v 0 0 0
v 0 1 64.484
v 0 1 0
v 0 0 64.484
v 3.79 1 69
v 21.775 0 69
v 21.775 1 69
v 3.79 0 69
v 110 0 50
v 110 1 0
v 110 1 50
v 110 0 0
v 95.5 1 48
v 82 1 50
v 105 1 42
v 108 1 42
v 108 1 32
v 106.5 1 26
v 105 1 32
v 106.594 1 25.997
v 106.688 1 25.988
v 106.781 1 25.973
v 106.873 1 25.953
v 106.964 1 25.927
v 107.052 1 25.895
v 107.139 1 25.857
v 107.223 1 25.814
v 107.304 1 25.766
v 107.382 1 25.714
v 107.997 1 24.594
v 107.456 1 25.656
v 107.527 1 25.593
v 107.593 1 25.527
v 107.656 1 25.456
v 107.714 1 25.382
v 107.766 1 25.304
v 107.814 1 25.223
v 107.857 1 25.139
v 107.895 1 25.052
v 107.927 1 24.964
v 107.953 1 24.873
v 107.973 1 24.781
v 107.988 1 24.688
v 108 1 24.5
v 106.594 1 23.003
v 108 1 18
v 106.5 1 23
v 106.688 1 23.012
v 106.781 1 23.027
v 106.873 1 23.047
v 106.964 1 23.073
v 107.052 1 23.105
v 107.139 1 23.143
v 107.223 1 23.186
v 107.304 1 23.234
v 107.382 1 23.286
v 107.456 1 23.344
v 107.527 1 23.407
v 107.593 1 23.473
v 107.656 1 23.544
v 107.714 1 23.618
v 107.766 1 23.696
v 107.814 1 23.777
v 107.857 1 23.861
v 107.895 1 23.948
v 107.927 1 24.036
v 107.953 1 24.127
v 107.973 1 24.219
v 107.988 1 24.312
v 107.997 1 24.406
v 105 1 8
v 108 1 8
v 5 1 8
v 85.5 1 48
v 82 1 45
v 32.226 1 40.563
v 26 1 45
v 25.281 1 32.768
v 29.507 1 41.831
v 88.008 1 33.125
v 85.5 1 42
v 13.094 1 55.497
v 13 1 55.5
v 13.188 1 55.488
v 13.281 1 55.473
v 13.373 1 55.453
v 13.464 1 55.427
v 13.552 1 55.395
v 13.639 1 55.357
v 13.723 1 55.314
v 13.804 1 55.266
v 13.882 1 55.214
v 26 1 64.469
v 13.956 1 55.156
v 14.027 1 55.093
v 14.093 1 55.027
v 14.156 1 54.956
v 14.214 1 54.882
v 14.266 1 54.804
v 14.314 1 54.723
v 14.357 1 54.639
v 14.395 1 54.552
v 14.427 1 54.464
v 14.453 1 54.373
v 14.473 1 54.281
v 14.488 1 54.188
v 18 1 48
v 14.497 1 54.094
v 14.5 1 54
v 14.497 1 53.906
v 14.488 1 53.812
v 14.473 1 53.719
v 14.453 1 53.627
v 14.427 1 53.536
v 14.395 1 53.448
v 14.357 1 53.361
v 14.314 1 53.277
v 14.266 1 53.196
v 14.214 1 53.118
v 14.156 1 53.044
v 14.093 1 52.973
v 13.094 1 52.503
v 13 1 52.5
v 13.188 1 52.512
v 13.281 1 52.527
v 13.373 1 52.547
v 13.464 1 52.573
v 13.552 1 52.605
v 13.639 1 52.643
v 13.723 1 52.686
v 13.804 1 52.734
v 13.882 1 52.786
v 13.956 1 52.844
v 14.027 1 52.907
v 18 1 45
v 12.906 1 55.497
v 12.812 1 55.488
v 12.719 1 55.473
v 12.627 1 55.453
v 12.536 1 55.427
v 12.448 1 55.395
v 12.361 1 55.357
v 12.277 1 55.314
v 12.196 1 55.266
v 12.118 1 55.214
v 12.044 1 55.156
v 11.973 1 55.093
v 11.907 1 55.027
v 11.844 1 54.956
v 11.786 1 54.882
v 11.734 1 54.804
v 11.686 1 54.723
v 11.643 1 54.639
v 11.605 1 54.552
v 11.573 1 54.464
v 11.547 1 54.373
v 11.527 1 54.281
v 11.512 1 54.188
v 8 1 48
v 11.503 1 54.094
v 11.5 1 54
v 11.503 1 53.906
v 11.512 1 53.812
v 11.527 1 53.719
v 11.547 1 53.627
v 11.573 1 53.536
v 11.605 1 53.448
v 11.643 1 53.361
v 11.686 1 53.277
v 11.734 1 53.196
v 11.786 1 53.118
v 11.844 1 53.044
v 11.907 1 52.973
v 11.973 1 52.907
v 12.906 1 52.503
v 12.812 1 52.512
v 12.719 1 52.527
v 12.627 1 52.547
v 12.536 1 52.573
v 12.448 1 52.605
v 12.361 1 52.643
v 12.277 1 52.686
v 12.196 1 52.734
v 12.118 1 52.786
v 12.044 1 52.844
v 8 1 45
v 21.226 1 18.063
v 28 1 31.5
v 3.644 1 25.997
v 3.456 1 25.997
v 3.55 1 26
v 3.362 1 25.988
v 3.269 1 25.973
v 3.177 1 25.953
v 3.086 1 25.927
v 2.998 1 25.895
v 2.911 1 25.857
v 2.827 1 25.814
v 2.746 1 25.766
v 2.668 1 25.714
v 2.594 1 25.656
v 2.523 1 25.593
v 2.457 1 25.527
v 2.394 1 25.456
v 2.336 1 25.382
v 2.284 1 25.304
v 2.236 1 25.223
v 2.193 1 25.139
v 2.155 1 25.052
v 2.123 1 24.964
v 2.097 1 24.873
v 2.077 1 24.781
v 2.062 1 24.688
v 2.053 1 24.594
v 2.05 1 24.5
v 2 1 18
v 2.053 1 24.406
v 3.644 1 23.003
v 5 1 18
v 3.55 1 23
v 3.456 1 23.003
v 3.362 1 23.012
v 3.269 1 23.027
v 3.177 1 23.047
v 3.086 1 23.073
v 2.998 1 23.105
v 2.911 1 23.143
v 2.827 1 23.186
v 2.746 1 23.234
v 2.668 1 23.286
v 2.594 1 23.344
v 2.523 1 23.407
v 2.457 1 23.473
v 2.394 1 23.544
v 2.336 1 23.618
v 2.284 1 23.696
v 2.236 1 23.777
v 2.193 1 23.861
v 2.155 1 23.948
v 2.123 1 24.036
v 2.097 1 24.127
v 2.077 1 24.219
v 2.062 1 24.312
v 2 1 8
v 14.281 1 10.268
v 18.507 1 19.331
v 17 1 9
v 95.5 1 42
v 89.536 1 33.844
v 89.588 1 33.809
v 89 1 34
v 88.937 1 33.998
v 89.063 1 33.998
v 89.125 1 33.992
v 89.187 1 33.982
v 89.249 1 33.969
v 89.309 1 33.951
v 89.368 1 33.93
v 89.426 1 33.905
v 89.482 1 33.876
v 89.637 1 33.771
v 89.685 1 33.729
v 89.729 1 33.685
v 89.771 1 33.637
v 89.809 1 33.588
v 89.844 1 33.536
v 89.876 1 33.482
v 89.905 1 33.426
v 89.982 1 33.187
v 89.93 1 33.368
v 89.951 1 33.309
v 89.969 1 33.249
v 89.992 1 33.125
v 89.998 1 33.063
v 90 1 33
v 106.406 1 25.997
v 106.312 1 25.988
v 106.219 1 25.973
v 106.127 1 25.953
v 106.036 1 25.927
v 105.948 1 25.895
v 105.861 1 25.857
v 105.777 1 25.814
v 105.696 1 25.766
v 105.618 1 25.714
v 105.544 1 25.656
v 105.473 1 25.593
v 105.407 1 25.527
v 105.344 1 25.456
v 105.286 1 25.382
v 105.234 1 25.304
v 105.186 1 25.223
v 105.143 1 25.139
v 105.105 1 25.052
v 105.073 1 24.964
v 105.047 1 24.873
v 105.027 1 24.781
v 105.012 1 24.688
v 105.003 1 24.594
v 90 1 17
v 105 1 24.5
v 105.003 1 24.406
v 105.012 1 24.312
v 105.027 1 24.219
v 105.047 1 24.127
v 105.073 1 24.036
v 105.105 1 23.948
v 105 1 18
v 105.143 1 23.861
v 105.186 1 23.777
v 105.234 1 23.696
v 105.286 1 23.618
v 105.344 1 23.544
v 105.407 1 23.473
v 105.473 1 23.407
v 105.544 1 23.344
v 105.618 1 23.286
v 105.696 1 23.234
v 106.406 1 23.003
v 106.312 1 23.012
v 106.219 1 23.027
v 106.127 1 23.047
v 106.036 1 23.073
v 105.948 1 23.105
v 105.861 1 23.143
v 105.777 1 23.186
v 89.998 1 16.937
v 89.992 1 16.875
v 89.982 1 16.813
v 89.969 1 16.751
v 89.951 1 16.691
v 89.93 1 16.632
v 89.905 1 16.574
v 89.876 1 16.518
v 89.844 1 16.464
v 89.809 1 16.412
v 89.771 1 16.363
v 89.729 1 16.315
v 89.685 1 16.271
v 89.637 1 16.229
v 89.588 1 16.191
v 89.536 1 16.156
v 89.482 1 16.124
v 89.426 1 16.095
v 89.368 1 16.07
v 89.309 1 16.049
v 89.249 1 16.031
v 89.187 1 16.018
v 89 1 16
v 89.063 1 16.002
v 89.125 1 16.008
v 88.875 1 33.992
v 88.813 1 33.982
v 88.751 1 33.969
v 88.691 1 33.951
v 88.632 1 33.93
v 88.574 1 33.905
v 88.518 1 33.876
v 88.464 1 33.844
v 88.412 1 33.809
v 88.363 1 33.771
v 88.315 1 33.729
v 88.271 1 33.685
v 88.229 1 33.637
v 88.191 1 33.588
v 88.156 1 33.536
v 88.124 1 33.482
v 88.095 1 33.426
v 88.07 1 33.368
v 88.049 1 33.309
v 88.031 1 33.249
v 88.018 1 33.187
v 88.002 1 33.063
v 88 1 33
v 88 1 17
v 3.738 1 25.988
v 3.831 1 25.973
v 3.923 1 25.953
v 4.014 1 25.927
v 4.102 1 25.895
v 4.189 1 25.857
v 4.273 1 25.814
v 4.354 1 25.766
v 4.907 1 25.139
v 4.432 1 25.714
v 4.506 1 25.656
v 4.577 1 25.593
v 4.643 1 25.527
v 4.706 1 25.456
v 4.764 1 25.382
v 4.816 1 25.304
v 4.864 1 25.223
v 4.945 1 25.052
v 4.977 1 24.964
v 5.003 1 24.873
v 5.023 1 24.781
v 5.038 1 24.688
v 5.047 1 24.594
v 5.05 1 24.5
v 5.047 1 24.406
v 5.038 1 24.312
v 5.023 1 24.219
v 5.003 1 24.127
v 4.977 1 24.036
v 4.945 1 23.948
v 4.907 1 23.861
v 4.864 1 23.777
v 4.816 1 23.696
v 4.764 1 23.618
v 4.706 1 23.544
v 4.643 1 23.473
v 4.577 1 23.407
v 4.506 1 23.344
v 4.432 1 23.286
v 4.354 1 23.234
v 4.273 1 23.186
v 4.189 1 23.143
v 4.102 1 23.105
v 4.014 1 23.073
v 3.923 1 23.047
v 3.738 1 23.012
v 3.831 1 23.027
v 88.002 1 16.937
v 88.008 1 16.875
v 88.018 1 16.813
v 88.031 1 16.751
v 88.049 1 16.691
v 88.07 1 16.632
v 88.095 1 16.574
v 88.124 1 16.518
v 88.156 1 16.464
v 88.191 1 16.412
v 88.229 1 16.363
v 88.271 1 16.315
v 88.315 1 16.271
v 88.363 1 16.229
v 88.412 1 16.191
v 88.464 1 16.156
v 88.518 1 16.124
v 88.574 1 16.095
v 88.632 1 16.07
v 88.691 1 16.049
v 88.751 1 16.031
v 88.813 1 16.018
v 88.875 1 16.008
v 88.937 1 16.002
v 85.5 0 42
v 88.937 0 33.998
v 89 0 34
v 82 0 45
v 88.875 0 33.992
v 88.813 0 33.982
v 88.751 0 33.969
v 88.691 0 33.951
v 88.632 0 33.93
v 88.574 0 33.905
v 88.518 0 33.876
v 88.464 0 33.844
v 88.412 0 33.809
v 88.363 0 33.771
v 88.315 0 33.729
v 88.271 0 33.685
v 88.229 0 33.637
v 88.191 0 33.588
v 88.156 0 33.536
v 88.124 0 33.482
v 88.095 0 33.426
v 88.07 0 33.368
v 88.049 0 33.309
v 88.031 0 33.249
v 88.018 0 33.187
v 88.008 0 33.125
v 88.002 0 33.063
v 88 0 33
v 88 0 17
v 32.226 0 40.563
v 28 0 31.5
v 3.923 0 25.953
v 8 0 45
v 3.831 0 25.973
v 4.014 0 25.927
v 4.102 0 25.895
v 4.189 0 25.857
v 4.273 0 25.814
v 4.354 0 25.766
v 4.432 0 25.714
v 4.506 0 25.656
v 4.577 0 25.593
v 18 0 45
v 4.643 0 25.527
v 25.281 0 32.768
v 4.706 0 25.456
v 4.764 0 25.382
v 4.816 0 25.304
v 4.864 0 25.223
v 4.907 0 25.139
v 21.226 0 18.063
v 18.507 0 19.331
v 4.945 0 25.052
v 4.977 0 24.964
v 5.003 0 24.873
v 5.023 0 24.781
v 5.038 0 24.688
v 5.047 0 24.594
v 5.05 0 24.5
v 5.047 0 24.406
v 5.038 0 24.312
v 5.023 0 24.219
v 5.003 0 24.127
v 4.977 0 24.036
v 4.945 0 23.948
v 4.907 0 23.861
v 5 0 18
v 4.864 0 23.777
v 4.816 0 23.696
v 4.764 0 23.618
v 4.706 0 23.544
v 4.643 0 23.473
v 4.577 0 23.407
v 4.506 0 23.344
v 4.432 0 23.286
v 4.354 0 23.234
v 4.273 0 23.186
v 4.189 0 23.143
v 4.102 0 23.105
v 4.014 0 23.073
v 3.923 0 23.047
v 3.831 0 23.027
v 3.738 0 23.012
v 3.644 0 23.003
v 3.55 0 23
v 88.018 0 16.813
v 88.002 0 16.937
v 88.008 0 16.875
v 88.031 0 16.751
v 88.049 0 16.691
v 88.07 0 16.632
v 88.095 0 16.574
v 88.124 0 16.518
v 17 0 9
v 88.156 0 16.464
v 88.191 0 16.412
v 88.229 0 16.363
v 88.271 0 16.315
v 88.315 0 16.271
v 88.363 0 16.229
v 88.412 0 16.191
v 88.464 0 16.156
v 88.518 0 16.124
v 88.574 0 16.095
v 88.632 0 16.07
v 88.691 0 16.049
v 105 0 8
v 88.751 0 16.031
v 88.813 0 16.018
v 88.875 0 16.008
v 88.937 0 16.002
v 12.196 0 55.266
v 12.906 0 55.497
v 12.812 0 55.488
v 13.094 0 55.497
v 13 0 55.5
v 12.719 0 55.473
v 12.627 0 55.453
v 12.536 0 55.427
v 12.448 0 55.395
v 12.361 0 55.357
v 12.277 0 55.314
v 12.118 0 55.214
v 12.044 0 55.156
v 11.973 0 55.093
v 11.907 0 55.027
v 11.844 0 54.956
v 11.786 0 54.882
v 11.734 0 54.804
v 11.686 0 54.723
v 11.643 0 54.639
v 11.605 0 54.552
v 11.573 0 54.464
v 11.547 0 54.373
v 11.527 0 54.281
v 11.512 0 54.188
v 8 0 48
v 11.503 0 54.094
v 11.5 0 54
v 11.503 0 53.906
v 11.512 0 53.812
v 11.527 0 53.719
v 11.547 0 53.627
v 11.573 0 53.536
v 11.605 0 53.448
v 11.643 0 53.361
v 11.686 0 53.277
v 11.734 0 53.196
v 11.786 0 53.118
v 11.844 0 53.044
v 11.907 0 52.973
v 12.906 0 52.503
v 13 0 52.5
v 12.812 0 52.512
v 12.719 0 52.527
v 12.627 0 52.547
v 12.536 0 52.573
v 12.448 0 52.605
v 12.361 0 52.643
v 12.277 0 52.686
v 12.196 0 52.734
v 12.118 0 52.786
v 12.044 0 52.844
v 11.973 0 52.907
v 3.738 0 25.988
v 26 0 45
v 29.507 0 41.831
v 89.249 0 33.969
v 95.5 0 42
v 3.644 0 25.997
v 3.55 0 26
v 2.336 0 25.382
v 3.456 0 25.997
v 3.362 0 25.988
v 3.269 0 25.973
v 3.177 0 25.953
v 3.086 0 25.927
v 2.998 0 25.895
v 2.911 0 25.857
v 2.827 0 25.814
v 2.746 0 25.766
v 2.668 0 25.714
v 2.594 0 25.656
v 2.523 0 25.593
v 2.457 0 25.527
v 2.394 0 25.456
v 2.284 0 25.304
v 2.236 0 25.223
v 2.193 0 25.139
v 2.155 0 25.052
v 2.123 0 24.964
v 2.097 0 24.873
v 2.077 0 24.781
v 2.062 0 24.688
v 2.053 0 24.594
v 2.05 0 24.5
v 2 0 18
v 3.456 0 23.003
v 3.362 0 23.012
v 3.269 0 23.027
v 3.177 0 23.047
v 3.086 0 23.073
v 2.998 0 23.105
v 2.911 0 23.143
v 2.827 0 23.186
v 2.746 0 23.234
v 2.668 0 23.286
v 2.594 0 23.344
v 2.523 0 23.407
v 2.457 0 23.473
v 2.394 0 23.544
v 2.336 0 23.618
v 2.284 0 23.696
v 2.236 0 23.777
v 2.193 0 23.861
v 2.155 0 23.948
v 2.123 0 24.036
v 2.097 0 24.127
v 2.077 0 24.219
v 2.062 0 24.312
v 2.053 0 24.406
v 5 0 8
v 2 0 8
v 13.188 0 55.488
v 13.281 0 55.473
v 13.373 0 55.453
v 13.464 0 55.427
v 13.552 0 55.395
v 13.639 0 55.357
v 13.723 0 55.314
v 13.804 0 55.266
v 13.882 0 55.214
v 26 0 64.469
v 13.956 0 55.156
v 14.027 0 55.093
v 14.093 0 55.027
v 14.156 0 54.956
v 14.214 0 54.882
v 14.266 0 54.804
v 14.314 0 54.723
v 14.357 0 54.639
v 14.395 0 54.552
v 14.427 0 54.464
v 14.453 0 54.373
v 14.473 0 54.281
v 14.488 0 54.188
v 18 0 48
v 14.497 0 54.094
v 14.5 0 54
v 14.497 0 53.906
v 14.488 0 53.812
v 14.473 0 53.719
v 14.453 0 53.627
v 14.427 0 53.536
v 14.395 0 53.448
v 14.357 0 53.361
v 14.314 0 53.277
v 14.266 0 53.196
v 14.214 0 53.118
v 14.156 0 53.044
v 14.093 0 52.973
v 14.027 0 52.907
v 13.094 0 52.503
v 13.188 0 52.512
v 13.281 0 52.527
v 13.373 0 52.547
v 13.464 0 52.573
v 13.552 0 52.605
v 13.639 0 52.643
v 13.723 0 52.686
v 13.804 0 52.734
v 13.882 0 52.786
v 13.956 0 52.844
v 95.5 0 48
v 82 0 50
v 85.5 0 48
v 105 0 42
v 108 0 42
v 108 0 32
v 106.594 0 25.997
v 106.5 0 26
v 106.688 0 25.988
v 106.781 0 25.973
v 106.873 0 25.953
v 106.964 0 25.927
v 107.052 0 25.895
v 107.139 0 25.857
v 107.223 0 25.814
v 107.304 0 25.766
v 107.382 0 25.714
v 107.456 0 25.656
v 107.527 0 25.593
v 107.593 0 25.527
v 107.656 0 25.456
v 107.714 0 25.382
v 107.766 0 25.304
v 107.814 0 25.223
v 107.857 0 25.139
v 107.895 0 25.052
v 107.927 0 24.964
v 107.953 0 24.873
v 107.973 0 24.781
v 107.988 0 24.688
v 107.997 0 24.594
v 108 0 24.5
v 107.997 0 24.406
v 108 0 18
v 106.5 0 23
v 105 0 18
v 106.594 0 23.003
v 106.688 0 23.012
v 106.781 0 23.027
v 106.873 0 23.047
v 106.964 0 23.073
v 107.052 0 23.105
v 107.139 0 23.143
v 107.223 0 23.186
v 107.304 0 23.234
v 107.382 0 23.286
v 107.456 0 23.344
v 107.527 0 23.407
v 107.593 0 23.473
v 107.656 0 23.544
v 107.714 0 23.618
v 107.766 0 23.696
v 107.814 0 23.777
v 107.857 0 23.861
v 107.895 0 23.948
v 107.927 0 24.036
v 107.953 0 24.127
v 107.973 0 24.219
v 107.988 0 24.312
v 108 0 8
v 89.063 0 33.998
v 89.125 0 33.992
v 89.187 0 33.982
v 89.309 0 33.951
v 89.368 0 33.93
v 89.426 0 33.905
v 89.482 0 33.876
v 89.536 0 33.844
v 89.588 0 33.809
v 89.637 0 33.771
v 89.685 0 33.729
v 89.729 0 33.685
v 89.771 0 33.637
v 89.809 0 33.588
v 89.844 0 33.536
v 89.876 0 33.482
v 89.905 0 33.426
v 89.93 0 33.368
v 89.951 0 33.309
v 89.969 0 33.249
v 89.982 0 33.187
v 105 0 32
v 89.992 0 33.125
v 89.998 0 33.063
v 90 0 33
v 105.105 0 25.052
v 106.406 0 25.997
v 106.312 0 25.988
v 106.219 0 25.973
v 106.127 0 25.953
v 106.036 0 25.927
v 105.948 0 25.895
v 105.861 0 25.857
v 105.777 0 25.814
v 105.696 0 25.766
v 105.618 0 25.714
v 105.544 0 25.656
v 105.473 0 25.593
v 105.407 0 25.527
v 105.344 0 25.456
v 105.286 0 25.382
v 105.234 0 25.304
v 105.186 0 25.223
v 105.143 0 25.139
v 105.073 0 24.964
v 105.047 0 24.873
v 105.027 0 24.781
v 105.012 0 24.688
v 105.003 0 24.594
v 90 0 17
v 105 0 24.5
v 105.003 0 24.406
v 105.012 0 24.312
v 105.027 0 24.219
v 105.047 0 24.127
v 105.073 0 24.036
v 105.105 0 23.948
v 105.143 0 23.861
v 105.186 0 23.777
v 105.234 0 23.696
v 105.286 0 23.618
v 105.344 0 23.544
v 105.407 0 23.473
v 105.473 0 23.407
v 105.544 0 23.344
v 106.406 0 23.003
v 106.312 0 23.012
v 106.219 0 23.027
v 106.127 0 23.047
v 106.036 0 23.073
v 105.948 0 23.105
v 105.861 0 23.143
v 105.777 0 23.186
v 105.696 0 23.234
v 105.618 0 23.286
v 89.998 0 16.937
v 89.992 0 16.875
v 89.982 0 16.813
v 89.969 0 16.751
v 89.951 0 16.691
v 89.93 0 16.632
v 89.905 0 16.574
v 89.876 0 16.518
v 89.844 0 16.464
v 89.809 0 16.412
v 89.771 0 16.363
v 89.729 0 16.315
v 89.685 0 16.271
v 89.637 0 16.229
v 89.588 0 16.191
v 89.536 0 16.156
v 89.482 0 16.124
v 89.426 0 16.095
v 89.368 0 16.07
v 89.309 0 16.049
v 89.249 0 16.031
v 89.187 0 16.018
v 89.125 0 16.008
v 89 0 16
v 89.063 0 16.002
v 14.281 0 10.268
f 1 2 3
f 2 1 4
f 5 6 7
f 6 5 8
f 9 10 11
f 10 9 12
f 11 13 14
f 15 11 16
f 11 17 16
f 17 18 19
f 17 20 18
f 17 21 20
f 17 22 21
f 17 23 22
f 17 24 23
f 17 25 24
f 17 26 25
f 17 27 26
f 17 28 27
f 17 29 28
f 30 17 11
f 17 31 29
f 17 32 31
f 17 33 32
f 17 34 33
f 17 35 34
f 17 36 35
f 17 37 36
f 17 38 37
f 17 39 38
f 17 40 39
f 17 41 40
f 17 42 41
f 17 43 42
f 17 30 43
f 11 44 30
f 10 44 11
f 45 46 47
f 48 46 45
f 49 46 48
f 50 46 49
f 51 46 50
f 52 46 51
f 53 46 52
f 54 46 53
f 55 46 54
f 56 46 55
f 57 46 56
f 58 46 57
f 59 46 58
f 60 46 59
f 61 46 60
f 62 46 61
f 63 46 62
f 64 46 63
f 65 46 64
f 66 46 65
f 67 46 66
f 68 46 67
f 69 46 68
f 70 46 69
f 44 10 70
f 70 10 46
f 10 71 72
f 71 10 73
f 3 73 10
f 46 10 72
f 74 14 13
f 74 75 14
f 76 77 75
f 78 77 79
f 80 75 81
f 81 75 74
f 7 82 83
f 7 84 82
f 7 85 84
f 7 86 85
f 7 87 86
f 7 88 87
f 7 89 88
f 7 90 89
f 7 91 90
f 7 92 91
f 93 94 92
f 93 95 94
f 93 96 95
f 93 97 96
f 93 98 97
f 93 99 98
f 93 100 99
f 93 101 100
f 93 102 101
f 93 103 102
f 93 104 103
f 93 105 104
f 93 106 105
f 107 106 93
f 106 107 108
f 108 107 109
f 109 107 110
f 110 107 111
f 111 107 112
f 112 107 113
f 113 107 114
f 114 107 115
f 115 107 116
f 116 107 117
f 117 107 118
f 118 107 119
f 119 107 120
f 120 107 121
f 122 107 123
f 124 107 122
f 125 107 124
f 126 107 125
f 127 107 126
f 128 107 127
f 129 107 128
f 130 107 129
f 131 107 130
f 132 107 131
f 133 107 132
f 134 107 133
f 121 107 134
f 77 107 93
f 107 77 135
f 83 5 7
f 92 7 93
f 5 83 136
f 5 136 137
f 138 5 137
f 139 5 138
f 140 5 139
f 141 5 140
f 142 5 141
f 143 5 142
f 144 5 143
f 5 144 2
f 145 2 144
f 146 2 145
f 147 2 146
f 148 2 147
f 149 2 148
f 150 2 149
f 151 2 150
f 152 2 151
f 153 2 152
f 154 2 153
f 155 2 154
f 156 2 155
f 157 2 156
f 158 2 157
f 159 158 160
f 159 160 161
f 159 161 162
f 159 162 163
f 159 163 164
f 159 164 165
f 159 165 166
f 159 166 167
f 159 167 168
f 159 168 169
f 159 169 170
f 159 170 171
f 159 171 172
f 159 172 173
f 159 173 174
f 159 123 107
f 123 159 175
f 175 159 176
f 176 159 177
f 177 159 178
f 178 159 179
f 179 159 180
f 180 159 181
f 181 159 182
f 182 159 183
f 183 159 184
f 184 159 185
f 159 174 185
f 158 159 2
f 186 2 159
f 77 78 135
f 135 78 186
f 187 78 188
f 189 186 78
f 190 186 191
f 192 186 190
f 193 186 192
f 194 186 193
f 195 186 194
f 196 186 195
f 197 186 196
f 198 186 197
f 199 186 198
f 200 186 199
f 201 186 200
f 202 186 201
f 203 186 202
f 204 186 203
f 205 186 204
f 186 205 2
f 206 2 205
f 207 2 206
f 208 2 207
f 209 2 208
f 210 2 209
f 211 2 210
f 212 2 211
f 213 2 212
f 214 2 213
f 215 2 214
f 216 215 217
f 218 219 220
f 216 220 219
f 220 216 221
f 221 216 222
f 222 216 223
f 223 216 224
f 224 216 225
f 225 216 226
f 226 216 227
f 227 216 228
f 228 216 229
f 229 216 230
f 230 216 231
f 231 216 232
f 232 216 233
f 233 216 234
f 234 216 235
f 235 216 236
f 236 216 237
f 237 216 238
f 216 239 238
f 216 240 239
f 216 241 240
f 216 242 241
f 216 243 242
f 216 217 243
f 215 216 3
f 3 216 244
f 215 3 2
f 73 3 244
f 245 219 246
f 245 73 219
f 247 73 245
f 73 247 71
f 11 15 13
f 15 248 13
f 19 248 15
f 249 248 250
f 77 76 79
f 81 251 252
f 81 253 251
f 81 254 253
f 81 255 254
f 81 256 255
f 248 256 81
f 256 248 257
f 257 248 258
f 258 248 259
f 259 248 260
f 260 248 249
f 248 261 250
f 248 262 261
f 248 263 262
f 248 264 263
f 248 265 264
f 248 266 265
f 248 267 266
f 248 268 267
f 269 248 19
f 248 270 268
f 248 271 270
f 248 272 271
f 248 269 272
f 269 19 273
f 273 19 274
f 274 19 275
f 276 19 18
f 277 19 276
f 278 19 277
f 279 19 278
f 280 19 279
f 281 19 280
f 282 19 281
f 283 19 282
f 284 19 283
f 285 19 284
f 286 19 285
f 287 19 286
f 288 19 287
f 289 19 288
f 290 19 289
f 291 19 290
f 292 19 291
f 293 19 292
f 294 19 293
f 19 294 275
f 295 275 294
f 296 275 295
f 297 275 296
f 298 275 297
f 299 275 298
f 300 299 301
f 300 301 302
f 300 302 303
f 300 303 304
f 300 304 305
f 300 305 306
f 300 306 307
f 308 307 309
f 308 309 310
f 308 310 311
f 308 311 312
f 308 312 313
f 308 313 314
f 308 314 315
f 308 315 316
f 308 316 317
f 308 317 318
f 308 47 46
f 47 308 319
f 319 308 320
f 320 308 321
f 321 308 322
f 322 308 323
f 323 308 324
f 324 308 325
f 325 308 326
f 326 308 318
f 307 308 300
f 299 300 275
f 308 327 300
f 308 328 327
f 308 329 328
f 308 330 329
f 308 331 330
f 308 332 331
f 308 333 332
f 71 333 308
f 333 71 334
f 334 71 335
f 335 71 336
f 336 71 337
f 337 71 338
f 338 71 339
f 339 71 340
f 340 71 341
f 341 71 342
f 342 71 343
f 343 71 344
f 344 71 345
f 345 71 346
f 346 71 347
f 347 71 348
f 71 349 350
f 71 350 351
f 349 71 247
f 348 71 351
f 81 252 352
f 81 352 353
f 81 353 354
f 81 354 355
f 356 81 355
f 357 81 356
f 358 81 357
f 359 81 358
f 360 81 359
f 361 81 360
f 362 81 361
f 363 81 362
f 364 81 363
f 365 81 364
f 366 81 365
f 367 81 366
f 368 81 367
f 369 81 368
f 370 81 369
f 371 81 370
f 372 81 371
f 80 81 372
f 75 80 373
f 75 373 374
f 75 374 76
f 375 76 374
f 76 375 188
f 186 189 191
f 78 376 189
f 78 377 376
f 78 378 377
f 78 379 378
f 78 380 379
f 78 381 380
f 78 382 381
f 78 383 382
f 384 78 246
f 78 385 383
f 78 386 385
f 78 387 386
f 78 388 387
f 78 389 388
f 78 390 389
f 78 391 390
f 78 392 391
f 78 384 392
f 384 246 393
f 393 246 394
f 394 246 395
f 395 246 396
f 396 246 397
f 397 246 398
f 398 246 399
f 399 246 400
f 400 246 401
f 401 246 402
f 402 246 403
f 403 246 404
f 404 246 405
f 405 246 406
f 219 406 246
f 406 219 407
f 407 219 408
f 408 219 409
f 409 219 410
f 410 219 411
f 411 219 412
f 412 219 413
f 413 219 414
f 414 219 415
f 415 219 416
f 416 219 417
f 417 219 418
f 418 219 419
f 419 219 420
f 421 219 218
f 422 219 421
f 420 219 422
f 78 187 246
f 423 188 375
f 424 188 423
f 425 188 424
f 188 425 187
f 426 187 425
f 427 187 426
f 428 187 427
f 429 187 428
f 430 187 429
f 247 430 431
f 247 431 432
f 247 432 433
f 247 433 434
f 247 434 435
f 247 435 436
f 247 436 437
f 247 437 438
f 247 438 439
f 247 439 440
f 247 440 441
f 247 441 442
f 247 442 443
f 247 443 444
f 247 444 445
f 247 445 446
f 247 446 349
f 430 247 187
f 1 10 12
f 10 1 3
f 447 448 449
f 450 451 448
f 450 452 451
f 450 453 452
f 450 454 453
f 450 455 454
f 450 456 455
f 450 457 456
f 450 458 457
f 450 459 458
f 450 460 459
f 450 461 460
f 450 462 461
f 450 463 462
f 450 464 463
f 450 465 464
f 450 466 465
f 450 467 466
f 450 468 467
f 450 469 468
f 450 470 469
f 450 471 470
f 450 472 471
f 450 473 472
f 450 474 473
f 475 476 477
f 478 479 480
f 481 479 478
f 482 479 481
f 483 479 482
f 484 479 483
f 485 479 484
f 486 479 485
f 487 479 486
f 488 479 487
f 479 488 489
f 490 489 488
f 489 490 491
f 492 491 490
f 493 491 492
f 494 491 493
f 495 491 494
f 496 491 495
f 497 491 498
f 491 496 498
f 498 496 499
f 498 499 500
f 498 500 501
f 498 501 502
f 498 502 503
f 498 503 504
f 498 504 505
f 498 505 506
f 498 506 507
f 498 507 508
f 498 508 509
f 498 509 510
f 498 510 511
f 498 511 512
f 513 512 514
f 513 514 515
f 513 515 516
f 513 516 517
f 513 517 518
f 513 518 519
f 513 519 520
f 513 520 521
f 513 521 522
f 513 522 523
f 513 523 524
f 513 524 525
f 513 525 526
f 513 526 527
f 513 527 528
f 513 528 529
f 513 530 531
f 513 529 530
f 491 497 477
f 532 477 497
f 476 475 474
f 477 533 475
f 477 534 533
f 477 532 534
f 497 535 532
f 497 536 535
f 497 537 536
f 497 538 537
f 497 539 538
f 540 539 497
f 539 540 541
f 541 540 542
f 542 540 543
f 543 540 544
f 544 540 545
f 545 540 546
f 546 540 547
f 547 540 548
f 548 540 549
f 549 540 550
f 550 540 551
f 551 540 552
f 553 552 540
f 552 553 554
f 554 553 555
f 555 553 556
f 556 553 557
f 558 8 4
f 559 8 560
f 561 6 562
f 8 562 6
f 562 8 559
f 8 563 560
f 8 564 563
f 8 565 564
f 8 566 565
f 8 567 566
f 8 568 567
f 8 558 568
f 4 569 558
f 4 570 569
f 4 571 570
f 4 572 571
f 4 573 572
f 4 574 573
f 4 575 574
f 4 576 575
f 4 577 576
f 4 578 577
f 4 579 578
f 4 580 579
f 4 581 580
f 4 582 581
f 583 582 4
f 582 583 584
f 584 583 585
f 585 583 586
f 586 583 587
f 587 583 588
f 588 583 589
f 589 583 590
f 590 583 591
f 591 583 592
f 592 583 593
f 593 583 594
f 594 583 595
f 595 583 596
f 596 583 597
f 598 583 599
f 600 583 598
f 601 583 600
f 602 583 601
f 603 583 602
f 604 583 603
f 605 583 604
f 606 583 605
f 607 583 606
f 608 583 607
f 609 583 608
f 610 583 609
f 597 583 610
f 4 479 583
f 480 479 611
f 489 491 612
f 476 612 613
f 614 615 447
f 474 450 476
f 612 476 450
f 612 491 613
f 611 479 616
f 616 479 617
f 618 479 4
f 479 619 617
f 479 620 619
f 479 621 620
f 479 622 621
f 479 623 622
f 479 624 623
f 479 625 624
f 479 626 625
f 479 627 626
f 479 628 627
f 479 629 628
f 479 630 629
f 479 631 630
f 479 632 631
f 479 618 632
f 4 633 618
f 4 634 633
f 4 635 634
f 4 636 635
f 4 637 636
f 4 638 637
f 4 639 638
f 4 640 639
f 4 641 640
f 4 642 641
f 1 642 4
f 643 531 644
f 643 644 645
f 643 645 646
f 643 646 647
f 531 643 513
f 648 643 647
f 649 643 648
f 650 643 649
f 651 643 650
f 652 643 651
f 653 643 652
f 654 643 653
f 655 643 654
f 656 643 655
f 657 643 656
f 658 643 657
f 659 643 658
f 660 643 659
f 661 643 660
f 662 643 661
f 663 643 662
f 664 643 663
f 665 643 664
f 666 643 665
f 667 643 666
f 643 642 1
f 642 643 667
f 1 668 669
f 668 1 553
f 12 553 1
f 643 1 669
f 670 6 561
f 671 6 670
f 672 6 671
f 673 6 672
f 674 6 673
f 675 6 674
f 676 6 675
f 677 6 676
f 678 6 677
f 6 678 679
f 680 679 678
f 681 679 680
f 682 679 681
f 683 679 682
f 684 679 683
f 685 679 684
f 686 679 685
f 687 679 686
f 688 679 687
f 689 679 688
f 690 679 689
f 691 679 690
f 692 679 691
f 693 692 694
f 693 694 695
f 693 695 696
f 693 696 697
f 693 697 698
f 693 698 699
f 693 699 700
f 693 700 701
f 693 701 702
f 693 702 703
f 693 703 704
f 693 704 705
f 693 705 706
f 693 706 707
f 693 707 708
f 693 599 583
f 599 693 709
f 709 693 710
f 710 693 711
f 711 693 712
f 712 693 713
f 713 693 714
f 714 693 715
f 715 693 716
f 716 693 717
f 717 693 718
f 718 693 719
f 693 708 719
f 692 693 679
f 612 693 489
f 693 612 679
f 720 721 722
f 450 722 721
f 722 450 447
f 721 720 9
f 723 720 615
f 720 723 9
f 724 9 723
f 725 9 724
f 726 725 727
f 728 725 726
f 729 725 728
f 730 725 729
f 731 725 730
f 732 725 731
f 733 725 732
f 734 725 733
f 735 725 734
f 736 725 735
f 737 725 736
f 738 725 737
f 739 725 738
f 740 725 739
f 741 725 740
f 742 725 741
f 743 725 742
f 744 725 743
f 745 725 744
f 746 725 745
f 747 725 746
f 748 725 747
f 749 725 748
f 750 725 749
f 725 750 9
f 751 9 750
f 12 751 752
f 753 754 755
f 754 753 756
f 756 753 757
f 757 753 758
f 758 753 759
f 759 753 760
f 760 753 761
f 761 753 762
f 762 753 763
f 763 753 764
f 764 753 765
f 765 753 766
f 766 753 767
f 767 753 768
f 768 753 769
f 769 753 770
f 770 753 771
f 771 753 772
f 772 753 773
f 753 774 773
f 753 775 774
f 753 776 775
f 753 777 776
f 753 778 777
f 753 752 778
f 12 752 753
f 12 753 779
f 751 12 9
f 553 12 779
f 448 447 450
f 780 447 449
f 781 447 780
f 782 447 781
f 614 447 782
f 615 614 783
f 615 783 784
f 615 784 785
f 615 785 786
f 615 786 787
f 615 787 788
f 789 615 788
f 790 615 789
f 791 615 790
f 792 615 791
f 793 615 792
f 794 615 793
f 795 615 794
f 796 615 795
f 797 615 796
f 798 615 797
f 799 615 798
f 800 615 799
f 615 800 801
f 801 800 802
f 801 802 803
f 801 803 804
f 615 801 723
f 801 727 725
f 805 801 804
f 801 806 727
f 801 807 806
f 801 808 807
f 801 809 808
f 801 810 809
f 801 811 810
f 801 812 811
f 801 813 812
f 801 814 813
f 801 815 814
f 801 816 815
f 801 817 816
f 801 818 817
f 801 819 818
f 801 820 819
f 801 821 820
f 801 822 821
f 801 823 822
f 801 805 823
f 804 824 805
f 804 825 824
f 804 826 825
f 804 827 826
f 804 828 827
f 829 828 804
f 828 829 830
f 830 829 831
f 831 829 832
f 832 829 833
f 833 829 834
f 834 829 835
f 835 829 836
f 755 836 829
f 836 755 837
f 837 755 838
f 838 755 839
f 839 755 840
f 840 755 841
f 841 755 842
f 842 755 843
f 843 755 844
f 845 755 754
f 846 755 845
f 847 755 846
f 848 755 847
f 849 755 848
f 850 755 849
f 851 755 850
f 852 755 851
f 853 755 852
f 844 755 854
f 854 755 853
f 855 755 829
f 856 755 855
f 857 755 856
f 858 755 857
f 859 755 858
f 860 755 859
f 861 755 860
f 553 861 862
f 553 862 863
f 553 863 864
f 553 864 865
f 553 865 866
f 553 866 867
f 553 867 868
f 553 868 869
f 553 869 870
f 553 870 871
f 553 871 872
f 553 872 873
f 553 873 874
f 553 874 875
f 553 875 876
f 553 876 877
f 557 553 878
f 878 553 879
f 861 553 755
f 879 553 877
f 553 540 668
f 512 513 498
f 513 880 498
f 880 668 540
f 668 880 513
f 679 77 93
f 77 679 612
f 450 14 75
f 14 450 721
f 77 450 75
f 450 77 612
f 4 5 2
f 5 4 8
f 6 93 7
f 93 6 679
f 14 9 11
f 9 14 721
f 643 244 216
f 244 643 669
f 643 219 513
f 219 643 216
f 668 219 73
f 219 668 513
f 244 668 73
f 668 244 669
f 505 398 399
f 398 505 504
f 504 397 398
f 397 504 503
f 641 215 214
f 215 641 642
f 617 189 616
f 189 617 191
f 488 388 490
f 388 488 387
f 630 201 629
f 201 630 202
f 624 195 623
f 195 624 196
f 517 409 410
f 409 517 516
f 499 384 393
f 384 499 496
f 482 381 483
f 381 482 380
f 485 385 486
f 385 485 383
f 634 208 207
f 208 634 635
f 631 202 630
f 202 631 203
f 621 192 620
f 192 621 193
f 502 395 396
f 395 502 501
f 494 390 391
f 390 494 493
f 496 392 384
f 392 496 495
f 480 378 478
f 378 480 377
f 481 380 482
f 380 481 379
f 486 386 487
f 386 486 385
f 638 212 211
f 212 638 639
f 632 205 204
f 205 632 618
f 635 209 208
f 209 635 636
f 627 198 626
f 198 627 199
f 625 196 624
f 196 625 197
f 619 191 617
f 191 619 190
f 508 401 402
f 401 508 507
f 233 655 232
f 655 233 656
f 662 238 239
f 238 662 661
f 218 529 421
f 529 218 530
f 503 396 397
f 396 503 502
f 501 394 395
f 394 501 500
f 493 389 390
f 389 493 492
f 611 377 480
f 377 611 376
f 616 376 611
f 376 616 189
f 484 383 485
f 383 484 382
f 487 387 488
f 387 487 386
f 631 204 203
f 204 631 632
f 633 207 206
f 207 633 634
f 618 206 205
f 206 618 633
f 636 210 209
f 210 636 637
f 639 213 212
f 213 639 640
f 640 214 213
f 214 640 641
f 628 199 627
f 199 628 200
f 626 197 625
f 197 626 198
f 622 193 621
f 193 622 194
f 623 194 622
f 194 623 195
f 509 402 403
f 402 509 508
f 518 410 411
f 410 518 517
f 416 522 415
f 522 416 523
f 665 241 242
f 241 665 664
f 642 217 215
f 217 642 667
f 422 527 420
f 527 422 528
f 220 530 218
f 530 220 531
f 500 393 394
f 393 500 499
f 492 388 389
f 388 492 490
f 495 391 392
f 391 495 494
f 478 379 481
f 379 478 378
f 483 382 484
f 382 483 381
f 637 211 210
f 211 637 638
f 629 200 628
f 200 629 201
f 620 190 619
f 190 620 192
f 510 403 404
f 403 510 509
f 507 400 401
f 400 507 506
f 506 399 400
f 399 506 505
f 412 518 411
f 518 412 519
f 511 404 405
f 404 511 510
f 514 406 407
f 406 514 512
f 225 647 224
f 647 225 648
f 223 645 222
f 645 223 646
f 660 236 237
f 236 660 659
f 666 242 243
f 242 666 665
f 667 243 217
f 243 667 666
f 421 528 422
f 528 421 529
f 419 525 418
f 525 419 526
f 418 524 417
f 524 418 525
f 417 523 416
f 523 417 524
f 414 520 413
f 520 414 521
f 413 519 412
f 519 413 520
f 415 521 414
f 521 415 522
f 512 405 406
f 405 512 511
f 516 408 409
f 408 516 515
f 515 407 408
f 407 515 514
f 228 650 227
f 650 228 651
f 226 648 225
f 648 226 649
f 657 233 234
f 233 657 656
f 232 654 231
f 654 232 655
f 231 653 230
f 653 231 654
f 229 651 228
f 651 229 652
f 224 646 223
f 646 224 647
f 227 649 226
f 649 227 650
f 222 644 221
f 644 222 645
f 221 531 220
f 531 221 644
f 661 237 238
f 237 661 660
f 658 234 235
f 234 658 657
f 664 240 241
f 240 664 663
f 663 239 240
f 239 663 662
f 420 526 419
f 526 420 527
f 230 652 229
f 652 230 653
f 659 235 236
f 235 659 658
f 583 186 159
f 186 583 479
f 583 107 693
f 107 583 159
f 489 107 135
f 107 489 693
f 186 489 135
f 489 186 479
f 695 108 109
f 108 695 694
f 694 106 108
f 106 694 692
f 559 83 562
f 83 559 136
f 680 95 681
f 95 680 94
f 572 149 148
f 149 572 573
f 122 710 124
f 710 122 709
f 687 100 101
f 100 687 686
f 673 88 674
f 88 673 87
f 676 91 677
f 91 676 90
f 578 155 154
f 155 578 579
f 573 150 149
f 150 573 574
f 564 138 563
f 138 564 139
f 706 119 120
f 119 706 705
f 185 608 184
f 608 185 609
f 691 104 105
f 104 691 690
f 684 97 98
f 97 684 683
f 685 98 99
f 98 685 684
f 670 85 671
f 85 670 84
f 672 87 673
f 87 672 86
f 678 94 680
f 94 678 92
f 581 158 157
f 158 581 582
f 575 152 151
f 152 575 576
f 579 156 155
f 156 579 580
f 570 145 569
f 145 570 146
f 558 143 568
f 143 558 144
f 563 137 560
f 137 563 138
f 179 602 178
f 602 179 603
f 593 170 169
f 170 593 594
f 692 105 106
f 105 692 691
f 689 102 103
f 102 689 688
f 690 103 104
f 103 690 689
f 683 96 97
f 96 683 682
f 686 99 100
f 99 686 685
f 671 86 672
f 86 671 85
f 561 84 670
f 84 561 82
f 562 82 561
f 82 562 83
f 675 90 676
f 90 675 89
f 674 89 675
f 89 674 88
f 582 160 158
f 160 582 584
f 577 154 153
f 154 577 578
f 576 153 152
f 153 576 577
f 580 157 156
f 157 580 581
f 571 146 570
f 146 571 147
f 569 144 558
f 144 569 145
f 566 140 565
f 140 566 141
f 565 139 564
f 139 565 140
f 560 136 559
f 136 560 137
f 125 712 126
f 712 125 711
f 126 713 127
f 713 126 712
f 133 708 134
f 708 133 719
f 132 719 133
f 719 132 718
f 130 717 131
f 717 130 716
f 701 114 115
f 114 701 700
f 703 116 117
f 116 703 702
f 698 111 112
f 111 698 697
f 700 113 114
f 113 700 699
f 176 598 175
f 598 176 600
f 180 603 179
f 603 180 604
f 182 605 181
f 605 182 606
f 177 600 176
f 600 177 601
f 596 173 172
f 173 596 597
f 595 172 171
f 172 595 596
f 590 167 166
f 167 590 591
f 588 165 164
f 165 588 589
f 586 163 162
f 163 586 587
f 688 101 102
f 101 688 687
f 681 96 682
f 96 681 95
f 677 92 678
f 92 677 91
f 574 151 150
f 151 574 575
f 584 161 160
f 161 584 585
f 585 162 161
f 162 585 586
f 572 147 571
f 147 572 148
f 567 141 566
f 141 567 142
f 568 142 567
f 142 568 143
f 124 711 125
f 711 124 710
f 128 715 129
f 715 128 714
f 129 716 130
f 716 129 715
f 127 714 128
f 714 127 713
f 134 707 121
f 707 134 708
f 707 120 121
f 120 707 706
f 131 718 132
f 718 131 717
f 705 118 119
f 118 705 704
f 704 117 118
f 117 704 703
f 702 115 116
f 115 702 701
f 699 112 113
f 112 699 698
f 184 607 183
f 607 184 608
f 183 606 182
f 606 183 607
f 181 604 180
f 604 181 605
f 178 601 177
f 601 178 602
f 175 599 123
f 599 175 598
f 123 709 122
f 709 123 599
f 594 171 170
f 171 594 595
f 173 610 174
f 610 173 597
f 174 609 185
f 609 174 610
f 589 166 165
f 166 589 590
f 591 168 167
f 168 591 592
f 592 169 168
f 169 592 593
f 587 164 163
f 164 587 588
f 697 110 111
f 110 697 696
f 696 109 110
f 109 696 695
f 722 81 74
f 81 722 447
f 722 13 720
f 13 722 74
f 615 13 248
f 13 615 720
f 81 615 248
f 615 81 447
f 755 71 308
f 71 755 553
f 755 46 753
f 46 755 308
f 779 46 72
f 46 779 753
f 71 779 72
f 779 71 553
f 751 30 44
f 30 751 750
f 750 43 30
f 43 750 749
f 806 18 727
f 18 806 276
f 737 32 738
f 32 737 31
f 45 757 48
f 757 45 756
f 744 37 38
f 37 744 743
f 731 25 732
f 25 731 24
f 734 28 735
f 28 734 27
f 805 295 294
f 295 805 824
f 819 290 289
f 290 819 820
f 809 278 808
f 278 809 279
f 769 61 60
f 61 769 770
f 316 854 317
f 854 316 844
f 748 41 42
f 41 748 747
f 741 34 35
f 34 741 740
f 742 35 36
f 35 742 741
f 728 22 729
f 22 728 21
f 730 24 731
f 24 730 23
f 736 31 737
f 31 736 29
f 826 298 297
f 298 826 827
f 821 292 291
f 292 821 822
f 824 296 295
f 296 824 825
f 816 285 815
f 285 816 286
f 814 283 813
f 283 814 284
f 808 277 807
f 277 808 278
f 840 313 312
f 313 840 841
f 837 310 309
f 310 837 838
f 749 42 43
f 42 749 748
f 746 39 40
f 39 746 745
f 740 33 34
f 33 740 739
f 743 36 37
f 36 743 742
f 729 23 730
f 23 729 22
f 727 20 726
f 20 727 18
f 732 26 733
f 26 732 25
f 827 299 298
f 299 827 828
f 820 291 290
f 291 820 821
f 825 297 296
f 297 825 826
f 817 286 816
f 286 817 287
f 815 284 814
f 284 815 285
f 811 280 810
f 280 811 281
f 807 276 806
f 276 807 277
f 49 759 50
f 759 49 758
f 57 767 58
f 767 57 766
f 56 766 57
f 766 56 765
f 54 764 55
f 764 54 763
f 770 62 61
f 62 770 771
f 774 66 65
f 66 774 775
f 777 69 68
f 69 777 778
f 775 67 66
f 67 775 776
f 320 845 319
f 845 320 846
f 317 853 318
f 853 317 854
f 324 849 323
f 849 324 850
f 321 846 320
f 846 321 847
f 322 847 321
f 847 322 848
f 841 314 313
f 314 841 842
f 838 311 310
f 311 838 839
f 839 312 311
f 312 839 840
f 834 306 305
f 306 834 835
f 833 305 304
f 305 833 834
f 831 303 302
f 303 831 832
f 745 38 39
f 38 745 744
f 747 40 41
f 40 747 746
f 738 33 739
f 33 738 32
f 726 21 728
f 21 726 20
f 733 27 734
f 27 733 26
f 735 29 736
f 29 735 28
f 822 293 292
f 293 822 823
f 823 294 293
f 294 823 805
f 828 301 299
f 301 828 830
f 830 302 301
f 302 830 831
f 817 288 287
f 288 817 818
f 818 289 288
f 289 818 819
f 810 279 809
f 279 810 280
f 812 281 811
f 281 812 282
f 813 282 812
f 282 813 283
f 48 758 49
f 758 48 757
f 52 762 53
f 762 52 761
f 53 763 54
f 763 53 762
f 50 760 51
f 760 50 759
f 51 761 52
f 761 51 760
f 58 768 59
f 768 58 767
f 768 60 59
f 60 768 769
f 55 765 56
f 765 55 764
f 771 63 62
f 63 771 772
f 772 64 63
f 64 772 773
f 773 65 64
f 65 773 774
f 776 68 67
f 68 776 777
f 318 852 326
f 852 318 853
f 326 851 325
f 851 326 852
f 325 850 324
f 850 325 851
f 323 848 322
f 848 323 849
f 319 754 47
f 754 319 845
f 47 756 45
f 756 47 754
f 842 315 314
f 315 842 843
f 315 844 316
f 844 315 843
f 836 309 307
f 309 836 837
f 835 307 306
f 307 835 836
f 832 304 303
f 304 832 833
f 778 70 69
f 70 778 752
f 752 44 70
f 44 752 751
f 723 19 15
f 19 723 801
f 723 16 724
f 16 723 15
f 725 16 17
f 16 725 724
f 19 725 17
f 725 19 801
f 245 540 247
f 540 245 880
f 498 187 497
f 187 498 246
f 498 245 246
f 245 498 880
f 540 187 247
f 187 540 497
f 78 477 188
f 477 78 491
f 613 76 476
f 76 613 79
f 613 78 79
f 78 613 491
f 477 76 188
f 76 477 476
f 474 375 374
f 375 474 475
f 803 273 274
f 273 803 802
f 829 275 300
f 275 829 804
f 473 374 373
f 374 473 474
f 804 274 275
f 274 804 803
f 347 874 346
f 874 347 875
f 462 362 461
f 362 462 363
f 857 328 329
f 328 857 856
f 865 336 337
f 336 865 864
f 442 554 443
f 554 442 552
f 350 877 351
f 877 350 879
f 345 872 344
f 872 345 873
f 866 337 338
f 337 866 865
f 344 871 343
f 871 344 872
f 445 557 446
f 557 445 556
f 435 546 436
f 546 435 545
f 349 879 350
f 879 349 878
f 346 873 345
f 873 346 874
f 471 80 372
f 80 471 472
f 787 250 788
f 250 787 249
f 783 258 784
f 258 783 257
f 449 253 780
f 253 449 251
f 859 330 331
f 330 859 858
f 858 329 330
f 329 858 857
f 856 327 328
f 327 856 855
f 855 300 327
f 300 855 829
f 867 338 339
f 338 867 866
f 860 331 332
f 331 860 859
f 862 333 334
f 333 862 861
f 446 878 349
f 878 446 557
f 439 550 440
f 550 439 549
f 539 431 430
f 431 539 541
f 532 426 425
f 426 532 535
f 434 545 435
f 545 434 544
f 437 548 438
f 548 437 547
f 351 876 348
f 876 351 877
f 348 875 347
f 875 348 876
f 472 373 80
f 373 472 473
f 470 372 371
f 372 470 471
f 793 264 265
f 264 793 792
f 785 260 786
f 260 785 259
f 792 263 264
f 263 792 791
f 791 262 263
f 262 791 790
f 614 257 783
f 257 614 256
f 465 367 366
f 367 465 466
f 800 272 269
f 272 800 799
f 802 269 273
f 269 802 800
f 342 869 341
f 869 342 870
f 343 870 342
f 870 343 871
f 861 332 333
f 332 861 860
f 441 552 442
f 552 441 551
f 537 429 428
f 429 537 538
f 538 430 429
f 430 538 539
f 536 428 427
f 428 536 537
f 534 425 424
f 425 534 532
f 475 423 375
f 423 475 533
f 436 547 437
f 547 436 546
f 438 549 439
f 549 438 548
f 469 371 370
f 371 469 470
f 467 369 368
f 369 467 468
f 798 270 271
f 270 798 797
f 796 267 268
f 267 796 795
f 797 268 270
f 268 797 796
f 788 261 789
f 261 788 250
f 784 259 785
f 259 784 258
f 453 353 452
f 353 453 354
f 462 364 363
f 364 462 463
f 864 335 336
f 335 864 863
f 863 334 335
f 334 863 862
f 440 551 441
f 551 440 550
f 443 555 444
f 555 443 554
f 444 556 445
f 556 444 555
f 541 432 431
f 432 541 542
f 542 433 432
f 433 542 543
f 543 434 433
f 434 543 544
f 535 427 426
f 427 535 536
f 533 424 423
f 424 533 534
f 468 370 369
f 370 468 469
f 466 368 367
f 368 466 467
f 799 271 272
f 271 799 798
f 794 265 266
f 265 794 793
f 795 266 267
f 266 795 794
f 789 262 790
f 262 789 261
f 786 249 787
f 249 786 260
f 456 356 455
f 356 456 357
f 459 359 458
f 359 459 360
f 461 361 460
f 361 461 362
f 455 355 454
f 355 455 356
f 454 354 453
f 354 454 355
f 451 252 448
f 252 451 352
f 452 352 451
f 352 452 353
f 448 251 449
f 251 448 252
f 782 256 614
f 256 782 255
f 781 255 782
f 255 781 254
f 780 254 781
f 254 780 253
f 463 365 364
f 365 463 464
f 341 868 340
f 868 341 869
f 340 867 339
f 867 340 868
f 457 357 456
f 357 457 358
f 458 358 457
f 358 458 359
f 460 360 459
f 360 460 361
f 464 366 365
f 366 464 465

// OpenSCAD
$fn=100;

difference()
{
//creating the large shape
color("red")translate([0,0,0])cube([110,1,69]);

//creating the middle removable block
color("green")translate([26,-1,45])cube([56,3,28]);

//creating the house thing
color("yellow")translate([-0.5,-1,74])rotate([0,130,0])cube([7,3,6.5]);
color("yellow")translate([26,-1,74])rotate([0,137,0])cube([6.5,3,8]);

//creating other part to remove
color("blue")translate([81,-1,50])cube([30,3,20]);
    
//Creating the screws and slits
color("pink")translate([2,-1,8])cube([3,3,10]);
    
color("white")translate([3.55,2,24.5])rotate([90,0,0])cylinder(3,1.5,1.5);
    
color("pink")translate([8,-1,45])cube([10,3,3]);
    
color("white")translate([13,2,54])rotate([90,0,0])cylinder(3,1.5,1.5);

color("pink")translate([85.5,-1,42])cube([10,3,6]);

color("pink")translate([105,-1,8])cube([3,3,10]);

color("white")translate([106.5,2,24.5])rotate([90,0,0])cylinder(3,1.5,1.5);
color("pink")translate([105,-1,32])cube([3,3,10]);

color("white")translate([17,-1,9])rotate([0,-65,0])cube([10,3,3]);

color("white")translate([28,-1,31.5])rotate([0,-65,0])cube([10,3,3]);

hull()
{
    color("white")translate([89,2,17])rotate([90,0,0])cylinder(3,1,1);
    color("white")translate([89,2,33])rotate([90,0,0])cylinder(3,1,1);
}
}
